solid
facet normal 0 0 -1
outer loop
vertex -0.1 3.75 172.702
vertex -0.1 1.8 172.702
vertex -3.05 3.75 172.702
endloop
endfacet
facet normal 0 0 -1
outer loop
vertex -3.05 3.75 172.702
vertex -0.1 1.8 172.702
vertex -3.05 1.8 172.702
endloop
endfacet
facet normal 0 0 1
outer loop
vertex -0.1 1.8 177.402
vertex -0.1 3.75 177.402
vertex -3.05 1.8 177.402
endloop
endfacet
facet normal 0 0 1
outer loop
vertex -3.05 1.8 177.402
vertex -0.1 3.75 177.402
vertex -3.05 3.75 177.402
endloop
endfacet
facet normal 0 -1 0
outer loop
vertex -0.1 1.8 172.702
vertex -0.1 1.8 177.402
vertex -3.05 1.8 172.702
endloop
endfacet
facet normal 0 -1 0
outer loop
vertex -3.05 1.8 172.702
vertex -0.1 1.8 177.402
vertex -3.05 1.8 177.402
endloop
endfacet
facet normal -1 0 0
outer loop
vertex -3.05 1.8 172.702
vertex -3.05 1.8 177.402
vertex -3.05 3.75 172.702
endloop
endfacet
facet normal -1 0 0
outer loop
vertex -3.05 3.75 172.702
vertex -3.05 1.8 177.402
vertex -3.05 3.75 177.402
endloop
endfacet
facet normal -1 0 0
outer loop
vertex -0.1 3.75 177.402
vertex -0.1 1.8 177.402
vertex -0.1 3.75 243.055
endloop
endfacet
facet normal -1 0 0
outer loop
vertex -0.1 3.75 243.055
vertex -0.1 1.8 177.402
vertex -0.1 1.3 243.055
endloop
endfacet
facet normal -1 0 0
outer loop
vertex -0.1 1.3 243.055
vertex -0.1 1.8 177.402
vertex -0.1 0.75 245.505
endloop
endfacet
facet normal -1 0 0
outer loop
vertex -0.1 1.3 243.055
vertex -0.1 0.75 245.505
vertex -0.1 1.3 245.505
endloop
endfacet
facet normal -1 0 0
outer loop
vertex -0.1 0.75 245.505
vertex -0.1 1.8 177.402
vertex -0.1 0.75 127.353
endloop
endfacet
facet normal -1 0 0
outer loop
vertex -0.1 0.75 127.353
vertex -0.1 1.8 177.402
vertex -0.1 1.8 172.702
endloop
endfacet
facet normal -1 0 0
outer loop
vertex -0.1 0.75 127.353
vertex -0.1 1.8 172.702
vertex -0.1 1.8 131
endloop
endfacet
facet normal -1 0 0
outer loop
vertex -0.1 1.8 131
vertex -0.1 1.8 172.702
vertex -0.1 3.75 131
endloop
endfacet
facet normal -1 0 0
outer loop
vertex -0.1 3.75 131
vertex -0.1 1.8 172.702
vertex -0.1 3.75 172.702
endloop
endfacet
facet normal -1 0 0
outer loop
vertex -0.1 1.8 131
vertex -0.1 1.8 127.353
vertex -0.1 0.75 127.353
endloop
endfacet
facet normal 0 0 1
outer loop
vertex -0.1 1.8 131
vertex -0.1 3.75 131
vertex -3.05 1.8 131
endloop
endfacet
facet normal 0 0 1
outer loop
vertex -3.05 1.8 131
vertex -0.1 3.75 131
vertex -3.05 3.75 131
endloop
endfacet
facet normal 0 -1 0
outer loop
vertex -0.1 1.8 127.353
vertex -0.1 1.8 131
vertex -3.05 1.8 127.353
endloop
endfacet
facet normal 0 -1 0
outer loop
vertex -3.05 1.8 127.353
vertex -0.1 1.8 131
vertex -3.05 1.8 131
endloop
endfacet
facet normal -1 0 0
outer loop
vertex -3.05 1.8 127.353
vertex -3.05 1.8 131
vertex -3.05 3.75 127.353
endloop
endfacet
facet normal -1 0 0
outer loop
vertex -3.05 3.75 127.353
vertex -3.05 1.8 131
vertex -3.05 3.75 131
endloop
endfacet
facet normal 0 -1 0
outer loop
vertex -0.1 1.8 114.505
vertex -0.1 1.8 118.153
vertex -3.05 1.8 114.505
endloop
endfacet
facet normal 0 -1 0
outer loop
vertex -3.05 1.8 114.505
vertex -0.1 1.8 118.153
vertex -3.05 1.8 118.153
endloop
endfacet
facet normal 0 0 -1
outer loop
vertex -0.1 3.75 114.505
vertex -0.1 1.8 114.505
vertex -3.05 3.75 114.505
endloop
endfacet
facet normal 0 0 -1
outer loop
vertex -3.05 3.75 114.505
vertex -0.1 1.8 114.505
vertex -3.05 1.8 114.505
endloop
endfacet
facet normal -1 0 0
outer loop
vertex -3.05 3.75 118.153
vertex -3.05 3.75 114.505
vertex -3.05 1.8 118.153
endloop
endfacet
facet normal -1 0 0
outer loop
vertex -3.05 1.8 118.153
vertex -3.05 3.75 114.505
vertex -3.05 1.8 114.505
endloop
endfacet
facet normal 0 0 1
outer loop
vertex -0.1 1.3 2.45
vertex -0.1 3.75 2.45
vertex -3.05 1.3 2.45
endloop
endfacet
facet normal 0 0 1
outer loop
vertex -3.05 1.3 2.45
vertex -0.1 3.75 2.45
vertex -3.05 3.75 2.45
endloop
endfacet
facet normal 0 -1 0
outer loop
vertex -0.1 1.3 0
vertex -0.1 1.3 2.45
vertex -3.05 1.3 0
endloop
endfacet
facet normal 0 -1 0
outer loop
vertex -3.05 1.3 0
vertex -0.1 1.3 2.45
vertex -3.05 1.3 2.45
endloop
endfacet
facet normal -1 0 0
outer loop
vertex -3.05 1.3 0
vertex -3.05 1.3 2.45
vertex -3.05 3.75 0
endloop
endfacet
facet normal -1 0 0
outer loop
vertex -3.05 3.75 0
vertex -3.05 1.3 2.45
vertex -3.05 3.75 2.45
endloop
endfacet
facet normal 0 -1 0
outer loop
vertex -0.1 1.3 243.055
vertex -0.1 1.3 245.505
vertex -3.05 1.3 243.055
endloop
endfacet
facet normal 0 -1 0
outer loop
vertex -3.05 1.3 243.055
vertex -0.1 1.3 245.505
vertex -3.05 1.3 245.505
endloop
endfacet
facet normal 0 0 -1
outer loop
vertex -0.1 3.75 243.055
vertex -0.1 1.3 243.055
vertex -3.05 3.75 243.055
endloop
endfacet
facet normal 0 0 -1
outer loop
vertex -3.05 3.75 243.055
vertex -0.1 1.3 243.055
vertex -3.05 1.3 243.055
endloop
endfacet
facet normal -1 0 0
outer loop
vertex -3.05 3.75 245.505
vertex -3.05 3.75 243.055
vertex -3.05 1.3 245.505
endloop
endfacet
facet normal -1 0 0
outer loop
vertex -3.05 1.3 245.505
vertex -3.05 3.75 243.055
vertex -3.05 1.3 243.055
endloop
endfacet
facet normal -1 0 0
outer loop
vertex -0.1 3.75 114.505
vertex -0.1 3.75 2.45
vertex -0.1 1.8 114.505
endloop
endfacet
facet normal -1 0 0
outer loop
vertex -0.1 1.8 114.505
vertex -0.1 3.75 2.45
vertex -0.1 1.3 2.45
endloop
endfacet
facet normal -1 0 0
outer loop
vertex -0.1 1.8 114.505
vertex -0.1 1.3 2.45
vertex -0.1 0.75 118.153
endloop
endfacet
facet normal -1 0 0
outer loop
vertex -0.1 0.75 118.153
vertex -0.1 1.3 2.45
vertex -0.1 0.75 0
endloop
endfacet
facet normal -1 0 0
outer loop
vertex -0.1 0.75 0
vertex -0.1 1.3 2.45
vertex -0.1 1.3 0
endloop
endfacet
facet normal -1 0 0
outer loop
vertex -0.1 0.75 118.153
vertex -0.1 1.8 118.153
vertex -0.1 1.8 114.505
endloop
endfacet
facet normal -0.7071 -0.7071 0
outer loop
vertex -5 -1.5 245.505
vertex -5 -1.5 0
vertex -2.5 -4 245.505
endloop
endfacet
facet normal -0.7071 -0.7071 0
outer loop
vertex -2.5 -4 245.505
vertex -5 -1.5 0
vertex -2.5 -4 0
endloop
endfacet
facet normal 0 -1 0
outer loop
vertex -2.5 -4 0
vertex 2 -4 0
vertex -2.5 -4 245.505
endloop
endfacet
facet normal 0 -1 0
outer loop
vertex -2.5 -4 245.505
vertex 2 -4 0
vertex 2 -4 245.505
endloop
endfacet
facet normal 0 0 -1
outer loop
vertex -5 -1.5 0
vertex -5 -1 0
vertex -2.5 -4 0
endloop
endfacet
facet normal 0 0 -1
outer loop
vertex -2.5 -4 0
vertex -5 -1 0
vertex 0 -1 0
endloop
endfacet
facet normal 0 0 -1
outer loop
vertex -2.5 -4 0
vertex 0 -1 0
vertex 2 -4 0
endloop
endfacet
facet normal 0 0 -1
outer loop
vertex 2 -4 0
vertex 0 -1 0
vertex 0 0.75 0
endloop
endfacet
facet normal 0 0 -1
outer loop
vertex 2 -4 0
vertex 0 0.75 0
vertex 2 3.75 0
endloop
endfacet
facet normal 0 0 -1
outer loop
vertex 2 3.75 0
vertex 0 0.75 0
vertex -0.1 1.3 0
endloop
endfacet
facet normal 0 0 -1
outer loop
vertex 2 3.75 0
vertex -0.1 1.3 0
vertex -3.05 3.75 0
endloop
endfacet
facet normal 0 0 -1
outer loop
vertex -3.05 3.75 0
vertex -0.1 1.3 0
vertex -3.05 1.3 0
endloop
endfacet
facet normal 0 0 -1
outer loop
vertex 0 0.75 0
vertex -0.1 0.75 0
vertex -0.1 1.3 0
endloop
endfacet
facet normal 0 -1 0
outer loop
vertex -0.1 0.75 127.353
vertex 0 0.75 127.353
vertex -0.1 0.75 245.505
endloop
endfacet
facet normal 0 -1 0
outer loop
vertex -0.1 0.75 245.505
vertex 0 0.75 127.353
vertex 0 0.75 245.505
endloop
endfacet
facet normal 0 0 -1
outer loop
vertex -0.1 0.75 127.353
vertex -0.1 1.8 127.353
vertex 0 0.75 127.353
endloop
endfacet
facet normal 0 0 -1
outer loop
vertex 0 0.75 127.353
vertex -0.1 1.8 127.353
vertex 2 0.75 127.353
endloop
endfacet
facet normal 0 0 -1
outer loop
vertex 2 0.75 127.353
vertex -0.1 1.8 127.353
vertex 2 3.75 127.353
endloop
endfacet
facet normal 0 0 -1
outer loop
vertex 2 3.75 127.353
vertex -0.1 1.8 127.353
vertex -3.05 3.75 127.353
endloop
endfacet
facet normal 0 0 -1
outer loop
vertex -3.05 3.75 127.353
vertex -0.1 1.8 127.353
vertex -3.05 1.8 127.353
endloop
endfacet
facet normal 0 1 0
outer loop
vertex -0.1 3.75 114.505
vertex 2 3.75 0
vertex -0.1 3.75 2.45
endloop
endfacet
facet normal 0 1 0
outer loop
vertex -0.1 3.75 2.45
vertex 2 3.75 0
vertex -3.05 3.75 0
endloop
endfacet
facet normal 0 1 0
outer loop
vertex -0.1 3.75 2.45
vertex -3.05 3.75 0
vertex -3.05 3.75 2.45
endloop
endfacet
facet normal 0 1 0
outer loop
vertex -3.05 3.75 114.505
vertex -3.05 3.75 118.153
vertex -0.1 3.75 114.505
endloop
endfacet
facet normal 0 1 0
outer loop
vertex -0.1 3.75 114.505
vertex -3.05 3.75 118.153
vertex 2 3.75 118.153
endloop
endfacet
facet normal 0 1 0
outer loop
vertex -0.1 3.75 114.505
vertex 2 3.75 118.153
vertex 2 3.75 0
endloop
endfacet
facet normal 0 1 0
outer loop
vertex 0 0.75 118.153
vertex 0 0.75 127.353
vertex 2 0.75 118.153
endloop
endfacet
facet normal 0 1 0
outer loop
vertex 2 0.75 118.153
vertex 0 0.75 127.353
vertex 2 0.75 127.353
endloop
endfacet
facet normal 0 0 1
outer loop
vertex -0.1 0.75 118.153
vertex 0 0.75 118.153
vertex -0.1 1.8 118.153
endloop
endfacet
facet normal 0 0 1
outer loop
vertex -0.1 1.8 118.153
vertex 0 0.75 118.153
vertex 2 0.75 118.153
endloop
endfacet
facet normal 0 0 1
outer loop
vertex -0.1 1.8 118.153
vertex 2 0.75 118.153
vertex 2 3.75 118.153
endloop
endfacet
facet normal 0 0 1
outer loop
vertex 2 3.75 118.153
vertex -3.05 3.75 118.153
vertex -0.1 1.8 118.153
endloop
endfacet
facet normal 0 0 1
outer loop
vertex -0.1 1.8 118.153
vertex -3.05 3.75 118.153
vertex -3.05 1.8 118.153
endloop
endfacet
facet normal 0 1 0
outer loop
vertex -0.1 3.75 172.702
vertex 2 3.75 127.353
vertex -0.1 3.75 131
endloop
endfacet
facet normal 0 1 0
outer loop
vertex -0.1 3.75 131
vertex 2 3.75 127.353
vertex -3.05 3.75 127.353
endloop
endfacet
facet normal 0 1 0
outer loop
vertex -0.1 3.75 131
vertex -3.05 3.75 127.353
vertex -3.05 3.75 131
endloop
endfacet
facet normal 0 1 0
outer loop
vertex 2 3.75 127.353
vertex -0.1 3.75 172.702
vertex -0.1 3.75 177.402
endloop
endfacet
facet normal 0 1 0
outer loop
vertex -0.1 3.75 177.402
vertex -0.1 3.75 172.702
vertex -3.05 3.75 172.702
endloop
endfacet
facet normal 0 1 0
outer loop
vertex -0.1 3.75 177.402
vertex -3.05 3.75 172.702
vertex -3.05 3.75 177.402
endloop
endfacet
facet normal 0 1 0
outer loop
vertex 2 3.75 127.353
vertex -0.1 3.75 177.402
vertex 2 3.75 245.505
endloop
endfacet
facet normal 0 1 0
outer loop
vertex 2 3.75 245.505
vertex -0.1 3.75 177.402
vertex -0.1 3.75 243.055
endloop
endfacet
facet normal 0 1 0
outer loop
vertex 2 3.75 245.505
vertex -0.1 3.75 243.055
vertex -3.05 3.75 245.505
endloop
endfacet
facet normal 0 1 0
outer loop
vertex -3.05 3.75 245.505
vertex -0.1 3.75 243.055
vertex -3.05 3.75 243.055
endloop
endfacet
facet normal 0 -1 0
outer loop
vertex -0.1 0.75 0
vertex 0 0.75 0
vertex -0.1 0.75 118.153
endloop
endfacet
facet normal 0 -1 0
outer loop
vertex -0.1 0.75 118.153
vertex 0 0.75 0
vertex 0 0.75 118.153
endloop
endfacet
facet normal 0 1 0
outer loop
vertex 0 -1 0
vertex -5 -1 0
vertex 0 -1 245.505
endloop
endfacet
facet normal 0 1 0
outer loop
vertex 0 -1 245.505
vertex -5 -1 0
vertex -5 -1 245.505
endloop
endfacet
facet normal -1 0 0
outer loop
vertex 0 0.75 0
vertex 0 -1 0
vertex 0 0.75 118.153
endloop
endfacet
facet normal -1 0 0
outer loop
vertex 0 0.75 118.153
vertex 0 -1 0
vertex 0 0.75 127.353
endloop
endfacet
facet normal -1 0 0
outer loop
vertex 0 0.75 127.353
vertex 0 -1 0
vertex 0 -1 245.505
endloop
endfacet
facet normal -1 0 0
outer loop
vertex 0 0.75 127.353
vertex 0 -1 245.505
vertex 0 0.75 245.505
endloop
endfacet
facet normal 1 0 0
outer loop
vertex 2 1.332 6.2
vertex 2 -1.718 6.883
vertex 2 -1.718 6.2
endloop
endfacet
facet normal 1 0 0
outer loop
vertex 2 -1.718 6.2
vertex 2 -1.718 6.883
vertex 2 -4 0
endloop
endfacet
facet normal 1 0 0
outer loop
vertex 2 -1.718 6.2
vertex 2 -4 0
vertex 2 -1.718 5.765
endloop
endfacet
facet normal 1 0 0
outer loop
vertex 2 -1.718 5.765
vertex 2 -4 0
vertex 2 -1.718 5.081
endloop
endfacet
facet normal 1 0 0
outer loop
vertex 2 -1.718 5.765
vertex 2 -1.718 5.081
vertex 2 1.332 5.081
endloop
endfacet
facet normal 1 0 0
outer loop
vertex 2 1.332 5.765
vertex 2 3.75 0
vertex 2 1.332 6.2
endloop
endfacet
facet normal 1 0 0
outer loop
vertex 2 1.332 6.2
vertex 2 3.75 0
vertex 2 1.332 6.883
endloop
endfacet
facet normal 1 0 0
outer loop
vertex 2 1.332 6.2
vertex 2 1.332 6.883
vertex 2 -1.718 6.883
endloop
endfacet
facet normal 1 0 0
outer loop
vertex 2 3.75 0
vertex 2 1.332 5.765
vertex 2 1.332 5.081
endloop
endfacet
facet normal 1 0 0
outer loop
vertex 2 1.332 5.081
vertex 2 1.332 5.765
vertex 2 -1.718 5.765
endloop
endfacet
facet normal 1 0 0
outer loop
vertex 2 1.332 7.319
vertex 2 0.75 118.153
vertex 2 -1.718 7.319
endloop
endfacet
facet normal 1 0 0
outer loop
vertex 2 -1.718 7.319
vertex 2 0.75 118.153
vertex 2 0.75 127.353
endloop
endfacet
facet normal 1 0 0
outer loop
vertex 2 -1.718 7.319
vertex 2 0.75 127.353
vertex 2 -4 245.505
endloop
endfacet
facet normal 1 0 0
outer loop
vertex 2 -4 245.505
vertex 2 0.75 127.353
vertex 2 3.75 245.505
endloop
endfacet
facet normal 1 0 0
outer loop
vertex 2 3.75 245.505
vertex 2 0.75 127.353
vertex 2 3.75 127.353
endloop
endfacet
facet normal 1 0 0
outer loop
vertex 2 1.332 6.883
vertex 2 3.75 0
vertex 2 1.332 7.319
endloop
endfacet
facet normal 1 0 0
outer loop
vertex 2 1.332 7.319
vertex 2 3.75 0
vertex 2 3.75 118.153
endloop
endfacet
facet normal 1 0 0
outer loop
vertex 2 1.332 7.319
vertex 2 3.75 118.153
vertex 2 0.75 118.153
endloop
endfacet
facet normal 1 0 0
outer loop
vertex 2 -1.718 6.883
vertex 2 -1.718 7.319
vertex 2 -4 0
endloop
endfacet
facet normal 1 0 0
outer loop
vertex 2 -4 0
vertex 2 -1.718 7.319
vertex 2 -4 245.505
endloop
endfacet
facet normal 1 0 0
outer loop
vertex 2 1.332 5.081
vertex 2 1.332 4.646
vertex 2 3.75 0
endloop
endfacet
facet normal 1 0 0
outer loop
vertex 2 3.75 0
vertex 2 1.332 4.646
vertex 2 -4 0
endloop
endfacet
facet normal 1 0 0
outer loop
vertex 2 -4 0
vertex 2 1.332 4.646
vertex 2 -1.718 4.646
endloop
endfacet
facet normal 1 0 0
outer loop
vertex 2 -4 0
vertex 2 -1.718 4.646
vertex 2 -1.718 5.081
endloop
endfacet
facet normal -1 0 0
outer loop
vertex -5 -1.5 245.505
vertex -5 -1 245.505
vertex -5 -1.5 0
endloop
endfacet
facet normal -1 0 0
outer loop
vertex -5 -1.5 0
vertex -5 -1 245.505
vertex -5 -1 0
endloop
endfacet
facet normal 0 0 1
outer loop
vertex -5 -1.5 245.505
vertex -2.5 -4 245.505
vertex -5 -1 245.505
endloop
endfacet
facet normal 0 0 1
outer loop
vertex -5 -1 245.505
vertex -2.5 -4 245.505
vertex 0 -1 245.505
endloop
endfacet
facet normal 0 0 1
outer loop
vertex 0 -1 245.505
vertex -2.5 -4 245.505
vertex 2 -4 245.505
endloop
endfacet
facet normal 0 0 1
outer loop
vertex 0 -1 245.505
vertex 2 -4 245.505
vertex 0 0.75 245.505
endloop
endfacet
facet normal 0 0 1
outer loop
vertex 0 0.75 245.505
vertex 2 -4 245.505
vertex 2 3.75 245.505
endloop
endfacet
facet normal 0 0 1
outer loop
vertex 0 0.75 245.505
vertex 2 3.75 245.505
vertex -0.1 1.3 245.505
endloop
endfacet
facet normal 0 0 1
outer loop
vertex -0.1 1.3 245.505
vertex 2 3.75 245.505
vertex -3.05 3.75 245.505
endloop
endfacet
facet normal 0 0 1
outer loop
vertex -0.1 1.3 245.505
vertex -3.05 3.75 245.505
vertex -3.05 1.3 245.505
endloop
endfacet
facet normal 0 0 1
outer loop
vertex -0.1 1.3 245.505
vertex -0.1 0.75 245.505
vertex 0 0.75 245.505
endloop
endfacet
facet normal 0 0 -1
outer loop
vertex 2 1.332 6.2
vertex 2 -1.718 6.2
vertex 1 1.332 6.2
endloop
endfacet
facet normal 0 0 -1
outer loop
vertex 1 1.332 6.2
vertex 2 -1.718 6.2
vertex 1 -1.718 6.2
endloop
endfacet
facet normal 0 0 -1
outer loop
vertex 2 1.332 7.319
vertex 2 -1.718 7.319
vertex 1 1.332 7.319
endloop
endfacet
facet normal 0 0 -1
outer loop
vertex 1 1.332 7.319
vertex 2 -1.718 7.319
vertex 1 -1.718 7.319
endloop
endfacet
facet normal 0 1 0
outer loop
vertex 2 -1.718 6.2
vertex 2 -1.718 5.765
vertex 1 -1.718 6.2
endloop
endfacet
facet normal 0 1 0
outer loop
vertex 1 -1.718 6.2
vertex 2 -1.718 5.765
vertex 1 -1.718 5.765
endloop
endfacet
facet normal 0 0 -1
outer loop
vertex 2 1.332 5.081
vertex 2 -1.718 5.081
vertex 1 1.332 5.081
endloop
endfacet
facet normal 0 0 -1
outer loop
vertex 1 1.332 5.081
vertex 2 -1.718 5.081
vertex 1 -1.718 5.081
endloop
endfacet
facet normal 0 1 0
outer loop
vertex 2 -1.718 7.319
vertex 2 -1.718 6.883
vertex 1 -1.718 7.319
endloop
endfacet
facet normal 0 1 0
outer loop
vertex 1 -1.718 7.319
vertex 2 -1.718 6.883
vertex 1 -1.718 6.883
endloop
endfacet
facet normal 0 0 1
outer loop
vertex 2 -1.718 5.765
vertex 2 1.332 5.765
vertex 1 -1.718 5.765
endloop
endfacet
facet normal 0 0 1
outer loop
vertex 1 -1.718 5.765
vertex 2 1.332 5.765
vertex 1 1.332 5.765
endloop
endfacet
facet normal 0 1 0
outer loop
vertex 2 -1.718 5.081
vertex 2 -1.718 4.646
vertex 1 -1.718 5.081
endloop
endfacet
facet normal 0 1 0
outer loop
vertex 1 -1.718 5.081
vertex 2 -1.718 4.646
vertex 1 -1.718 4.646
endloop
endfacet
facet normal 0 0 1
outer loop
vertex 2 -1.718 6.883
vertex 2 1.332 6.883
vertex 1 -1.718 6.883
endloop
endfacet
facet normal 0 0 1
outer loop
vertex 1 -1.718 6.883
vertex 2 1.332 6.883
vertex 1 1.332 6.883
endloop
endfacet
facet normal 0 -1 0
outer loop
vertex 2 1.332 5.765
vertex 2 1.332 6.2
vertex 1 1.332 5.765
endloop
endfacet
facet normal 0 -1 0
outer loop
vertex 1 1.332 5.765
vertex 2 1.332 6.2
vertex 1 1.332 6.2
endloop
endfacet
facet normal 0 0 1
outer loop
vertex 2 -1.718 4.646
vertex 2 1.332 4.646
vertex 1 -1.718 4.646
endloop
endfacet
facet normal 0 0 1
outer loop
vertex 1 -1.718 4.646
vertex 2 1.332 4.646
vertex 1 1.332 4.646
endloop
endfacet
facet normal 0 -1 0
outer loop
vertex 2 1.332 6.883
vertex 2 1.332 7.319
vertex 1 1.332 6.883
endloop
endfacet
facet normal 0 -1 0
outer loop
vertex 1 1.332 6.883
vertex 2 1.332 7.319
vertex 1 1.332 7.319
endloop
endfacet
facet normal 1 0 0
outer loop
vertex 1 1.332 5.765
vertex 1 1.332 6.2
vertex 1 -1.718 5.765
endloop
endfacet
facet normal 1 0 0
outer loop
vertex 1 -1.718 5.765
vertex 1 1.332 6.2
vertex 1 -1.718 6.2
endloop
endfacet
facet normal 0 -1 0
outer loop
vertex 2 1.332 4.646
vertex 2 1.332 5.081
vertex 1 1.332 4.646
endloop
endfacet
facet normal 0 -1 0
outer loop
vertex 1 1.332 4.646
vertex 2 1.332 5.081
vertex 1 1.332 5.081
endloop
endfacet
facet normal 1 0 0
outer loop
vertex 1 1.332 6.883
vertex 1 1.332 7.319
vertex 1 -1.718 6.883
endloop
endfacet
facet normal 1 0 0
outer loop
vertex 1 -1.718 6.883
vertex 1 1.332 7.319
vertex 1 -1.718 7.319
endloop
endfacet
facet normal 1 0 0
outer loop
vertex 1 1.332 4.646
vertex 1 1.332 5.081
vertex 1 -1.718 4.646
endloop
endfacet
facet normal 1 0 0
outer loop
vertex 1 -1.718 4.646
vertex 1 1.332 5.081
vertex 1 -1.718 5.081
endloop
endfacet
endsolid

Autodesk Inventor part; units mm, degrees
ref_plane "YZ Plane" through (0, 0, 0) normal (1, 0, 0) x (0, 1, 0)
ref_plane "XZ Plane" through (0, 0, 0) normal (0, 1, 0) x (-1, 0, 0)
ref_plane "XY Plane" through (0, 0, 0) normal (0, 0, 1) x (1, 0, 0)
sketch "Sketch1" plane through (0, 0, 0) normal (0, 0, 1) x (1, 0, 0)
  line L0 (0, 3.75) -> (2, 3.75)
  line L1 (2, 3.75) -> (2, -4)
  line L2 (2, -4) -> (0, -4)
  line L3 (0, -4) -> (0, 3.75) construction
  line L4 (0, -4) -> (-5, -4)
  line L5 (-5, -4) -> (-5, -1)
  line L6 (-5, -1) -> (0, -1)
  line L7 (0, 3.75) -> (-1, 3.75)
  line L8 (-1, 3.75) -> (-1, 0.75)
  line L9 (-1, 0.75) -> (0, 0.75)
  line L10 (0, 0.75) -> (0, 3.75) construction
  line L11 (0, 0.75) -> (0, -1)
  point P0 (0, 0)
  point P1 (0, -0.125)
  point P2 (1, 3.75)
  dimension "d0" = 4
  dimension "d1" = 2
  dimension "d5" = 5
  dimension "d6" = 1.75
  dimension "d7" = 3
  dimension "d11" = 3
  dimension "d12" = 3
extrude "Extrusion1" add sketch "Sketch1" along normal blind 245.505
sketch "Sketch2" plane through (-1, 3.75, 245.505) normal (0, 1, 0) x (1, 0, 0)
  line L0 (3, 245.505) -> (3, 0) construction
  line L1 (3, 122.7525) -> (1, 122.7525) construction
  line L2 (1, 245.505) -> (1, 0) construction
  line L3 (3, 127.3525) -> (1, 127.3525)
  line L4 (1, 127.3525) -> (1, 118.1525) construction
  line L5 (1, 118.1525) -> (3, 118.1525) construction
  line L6 (3, 118.1525) -> (3, 127.3525)
  line L7 (3, 122.7525) -> (1, 122.7525) construction
  line L8 (3, 118.1525) -> (1, 118.1525)
  line L9 (1, 127.3525) -> (0, 127.3525)
  line L10 (0, 245.505) -> (0, 0) projected
  line L11 (0, 127.3525) -> (0, 118.1525)
  line L12 (0, 118.1525) -> (1, 118.1525)
  point P0 (0, 118.1525)
  dimension "d13" = 9.2
extrude "Extrusion2" cut sketch "Sketch2" against normal up to surface (3 mm away)
sketch "Sketch3" plane through (-1, 0.75, 0) normal (-1, 0, 0) x (0, 0, 1)
  line L0 (118.1525, 0) -> (118.1525, 3) projected
  line L1 (0, 3) -> (118.1525, 3) projected
  line L2 (0, 3) -> (0, 0) projected
  line L3 (0, 0) -> (118.1525, 0) projected
  line L4 (127.3525, 3) -> (127.3525, 0) projected
  line L5 (127.3525, 0) -> (245.505, 0) projected
  line L6 (245.505, 3) -> (245.505, 0) projected
  line L7 (127.3525, 3) -> (245.505, 3) projected
  point P0 (0, -0.75)
extrude "Extrusion3" cut sketch "Sketch3" against normal blind 0.9
chamfer "Chamfer1" distance 2.5 angle 45 1 edges at (-5, -4, 122.7525)
sketch "Sketch4" plane through (-0.1, 0.75, 0) normal (-1, 0, 0) x (0, 0, 1)
  line L0 (0, 3) -> (118.1525, 3) projected
  line L1 (0, 3) -> (2.45, 3)
  line L2 (2.45, 3) -> (2.45, 0.55)
  line L3 (2.45, 0.55) -> (0, 0.55)
  line L4 (0, 0.55) -> (0, 3)
  line L5 (127.3525, 3) -> (245.505, 3) projected
  line L6 (245.505, 3) -> (243.055, 3)
  line L7 (243.055, 3) -> (243.055, 0.55)
  line L8 (243.055, 0.55) -> (245.505, 0.55)
  line L9 (245.505, 0.55) -> (245.505, 3)
  line L10 (0, 3) -> (2.45, 3)
  line L11 (2.45, 3) -> (2.45, 0.55)
  line L12 (245.505, 3) -> (243.055, 3)
  line L13 (243.055, 3) -> (243.055, 0.55)
  point P0 (0, -0.75)
  dimension "d21" = 2.45
  dimension "d22" = 2.45
  dimension "d23" = 2.45
  dimension "d24" = 2.45
extrude "Extrusion4" add sketch "Sketch4" along normal blind 2.95
sketch "Sketch5" plane through (-0.1, 0.75, 0) normal (-1, 0, 0) x (0, 0, 1)
  line L0 (114.505, 2.85) -> (114.505, 0.85) construction
  line L1 (131, 0.85) -> (131, 2.85) construction
  line L2 (131, 2.85) -> (131, 3) construction
  line L3 (127.3525, 3) -> (243.055, 3) construction
  line L4 (114.505, 2.85) -> (114.505, 3) construction
  line L5 (114.505, 3) -> (118.1525, 3)
  line L6 (118.1525, 3) -> (118.1525, 1.05)
  line L7 (118.1525, 1.05) -> (114.505, 1.05)
  line L8 (114.505, 1.05) -> (114.505, 3)
  line L9 (131, 3) -> (127.3525, 3)
  line L10 (127.3525, 3) -> (127.3525, 1.05)
  line L11 (127.3525, 1.05) -> (131, 1.05)
  line L12 (131, 1.05) -> (131, 3)
  line L13 (2.45, 3) -> (118.1525, 3) projected
  line L14 (127.3525, 0) -> (127.3525, 3) projected
  line L15 (118.1525, 3) -> (118.1525, 0) projected
  point P0 (0, -0.75)
  dimension "d29" = 1.95
extrude "Extrusion5" add sketch "Sketch5" along normal blind 2.95
sketch "Sketch6" plane through (-0.1, 0.75, 0) normal (-1, 0, 0) x (0, 0, 1)
  line L0 (172.5025, 2.85) -> (172.5025, 0.85) construction
  line L1 (177.6025, 0.85) -> (177.6025, 2.85) construction
  line L2 (177.6025, 2.85) -> (177.6025, 3) construction
  line L3 (131, 3) -> (243.055, 3) construction
  line L4 (172.5025, 2.85) -> (172.5025, 3) construction
  line L5 (172.7025, 3) -> (177.4025, 3)
  line L6 (177.4025, 3) -> (177.4025, 1.05)
  line L7 (177.4025, 1.05) -> (172.7025, 1.05)
  line L8 (172.7025, 1.05) -> (172.7025, 3)
  point P0 (0, -0.75)
  dimension "d32" = 0.2
  dimension "d33" = 0.2
  dimension "d34" = 1.95
extrude "Extrusion6" add sketch "Sketch6" along normal blind 2.95
sketch "Sketch7" plane through (2, -4, 0) normal (1, 0, 0) x (0, 0, -1)
  line L0 (-7.6603, 5.3316) -> (-4.3041, 5.3316) construction
  line L1 (-4.3041, 5.3316) -> (-4.3041, 2.2816) construction
  line L2 (-4.3041, 2.2816) -> (-7.6603, 2.2816) construction
  line L3 (-7.6603, 2.2816) -> (-7.6603, 5.3316) construction
  line L4 (-7.3186, 5.3316) -> (-6.8833, 5.3316)
  line L5 (-6.8833, 5.3316) -> (-6.8833, 2.2816)
  line L6 (-6.8833, 2.2816) -> (-7.3186, 2.2816)
  line L7 (-7.3186, 2.2816) -> (-7.3186, 5.3316)
  line L8 (-6.1999, 5.3316) -> (-5.7645, 5.3316)
  line L9 (-5.7645, 5.3316) -> (-5.7645, 2.2816)
  line L10 (-5.7645, 2.2816) -> (-6.1999, 2.2816)
  line L11 (-6.1999, 2.2816) -> (-6.1999, 5.3316)
  line L12 (-5.0811, 5.3316) -> (-4.6458, 5.3316)
  line L13 (-4.6458, 5.3316) -> (-4.6458, 2.2816)
  line L14 (-4.6458, 2.2816) -> (-5.0811, 2.2816)
  line L15 (-5.0811, 2.2816) -> (-5.0811, 5.3316)
  point P0 (0, 4)
extrude "Extrusion7" cut sketch "Sketch7" against normal blind 1
properties part number "Top Case Rail" material "PET Plastic"
